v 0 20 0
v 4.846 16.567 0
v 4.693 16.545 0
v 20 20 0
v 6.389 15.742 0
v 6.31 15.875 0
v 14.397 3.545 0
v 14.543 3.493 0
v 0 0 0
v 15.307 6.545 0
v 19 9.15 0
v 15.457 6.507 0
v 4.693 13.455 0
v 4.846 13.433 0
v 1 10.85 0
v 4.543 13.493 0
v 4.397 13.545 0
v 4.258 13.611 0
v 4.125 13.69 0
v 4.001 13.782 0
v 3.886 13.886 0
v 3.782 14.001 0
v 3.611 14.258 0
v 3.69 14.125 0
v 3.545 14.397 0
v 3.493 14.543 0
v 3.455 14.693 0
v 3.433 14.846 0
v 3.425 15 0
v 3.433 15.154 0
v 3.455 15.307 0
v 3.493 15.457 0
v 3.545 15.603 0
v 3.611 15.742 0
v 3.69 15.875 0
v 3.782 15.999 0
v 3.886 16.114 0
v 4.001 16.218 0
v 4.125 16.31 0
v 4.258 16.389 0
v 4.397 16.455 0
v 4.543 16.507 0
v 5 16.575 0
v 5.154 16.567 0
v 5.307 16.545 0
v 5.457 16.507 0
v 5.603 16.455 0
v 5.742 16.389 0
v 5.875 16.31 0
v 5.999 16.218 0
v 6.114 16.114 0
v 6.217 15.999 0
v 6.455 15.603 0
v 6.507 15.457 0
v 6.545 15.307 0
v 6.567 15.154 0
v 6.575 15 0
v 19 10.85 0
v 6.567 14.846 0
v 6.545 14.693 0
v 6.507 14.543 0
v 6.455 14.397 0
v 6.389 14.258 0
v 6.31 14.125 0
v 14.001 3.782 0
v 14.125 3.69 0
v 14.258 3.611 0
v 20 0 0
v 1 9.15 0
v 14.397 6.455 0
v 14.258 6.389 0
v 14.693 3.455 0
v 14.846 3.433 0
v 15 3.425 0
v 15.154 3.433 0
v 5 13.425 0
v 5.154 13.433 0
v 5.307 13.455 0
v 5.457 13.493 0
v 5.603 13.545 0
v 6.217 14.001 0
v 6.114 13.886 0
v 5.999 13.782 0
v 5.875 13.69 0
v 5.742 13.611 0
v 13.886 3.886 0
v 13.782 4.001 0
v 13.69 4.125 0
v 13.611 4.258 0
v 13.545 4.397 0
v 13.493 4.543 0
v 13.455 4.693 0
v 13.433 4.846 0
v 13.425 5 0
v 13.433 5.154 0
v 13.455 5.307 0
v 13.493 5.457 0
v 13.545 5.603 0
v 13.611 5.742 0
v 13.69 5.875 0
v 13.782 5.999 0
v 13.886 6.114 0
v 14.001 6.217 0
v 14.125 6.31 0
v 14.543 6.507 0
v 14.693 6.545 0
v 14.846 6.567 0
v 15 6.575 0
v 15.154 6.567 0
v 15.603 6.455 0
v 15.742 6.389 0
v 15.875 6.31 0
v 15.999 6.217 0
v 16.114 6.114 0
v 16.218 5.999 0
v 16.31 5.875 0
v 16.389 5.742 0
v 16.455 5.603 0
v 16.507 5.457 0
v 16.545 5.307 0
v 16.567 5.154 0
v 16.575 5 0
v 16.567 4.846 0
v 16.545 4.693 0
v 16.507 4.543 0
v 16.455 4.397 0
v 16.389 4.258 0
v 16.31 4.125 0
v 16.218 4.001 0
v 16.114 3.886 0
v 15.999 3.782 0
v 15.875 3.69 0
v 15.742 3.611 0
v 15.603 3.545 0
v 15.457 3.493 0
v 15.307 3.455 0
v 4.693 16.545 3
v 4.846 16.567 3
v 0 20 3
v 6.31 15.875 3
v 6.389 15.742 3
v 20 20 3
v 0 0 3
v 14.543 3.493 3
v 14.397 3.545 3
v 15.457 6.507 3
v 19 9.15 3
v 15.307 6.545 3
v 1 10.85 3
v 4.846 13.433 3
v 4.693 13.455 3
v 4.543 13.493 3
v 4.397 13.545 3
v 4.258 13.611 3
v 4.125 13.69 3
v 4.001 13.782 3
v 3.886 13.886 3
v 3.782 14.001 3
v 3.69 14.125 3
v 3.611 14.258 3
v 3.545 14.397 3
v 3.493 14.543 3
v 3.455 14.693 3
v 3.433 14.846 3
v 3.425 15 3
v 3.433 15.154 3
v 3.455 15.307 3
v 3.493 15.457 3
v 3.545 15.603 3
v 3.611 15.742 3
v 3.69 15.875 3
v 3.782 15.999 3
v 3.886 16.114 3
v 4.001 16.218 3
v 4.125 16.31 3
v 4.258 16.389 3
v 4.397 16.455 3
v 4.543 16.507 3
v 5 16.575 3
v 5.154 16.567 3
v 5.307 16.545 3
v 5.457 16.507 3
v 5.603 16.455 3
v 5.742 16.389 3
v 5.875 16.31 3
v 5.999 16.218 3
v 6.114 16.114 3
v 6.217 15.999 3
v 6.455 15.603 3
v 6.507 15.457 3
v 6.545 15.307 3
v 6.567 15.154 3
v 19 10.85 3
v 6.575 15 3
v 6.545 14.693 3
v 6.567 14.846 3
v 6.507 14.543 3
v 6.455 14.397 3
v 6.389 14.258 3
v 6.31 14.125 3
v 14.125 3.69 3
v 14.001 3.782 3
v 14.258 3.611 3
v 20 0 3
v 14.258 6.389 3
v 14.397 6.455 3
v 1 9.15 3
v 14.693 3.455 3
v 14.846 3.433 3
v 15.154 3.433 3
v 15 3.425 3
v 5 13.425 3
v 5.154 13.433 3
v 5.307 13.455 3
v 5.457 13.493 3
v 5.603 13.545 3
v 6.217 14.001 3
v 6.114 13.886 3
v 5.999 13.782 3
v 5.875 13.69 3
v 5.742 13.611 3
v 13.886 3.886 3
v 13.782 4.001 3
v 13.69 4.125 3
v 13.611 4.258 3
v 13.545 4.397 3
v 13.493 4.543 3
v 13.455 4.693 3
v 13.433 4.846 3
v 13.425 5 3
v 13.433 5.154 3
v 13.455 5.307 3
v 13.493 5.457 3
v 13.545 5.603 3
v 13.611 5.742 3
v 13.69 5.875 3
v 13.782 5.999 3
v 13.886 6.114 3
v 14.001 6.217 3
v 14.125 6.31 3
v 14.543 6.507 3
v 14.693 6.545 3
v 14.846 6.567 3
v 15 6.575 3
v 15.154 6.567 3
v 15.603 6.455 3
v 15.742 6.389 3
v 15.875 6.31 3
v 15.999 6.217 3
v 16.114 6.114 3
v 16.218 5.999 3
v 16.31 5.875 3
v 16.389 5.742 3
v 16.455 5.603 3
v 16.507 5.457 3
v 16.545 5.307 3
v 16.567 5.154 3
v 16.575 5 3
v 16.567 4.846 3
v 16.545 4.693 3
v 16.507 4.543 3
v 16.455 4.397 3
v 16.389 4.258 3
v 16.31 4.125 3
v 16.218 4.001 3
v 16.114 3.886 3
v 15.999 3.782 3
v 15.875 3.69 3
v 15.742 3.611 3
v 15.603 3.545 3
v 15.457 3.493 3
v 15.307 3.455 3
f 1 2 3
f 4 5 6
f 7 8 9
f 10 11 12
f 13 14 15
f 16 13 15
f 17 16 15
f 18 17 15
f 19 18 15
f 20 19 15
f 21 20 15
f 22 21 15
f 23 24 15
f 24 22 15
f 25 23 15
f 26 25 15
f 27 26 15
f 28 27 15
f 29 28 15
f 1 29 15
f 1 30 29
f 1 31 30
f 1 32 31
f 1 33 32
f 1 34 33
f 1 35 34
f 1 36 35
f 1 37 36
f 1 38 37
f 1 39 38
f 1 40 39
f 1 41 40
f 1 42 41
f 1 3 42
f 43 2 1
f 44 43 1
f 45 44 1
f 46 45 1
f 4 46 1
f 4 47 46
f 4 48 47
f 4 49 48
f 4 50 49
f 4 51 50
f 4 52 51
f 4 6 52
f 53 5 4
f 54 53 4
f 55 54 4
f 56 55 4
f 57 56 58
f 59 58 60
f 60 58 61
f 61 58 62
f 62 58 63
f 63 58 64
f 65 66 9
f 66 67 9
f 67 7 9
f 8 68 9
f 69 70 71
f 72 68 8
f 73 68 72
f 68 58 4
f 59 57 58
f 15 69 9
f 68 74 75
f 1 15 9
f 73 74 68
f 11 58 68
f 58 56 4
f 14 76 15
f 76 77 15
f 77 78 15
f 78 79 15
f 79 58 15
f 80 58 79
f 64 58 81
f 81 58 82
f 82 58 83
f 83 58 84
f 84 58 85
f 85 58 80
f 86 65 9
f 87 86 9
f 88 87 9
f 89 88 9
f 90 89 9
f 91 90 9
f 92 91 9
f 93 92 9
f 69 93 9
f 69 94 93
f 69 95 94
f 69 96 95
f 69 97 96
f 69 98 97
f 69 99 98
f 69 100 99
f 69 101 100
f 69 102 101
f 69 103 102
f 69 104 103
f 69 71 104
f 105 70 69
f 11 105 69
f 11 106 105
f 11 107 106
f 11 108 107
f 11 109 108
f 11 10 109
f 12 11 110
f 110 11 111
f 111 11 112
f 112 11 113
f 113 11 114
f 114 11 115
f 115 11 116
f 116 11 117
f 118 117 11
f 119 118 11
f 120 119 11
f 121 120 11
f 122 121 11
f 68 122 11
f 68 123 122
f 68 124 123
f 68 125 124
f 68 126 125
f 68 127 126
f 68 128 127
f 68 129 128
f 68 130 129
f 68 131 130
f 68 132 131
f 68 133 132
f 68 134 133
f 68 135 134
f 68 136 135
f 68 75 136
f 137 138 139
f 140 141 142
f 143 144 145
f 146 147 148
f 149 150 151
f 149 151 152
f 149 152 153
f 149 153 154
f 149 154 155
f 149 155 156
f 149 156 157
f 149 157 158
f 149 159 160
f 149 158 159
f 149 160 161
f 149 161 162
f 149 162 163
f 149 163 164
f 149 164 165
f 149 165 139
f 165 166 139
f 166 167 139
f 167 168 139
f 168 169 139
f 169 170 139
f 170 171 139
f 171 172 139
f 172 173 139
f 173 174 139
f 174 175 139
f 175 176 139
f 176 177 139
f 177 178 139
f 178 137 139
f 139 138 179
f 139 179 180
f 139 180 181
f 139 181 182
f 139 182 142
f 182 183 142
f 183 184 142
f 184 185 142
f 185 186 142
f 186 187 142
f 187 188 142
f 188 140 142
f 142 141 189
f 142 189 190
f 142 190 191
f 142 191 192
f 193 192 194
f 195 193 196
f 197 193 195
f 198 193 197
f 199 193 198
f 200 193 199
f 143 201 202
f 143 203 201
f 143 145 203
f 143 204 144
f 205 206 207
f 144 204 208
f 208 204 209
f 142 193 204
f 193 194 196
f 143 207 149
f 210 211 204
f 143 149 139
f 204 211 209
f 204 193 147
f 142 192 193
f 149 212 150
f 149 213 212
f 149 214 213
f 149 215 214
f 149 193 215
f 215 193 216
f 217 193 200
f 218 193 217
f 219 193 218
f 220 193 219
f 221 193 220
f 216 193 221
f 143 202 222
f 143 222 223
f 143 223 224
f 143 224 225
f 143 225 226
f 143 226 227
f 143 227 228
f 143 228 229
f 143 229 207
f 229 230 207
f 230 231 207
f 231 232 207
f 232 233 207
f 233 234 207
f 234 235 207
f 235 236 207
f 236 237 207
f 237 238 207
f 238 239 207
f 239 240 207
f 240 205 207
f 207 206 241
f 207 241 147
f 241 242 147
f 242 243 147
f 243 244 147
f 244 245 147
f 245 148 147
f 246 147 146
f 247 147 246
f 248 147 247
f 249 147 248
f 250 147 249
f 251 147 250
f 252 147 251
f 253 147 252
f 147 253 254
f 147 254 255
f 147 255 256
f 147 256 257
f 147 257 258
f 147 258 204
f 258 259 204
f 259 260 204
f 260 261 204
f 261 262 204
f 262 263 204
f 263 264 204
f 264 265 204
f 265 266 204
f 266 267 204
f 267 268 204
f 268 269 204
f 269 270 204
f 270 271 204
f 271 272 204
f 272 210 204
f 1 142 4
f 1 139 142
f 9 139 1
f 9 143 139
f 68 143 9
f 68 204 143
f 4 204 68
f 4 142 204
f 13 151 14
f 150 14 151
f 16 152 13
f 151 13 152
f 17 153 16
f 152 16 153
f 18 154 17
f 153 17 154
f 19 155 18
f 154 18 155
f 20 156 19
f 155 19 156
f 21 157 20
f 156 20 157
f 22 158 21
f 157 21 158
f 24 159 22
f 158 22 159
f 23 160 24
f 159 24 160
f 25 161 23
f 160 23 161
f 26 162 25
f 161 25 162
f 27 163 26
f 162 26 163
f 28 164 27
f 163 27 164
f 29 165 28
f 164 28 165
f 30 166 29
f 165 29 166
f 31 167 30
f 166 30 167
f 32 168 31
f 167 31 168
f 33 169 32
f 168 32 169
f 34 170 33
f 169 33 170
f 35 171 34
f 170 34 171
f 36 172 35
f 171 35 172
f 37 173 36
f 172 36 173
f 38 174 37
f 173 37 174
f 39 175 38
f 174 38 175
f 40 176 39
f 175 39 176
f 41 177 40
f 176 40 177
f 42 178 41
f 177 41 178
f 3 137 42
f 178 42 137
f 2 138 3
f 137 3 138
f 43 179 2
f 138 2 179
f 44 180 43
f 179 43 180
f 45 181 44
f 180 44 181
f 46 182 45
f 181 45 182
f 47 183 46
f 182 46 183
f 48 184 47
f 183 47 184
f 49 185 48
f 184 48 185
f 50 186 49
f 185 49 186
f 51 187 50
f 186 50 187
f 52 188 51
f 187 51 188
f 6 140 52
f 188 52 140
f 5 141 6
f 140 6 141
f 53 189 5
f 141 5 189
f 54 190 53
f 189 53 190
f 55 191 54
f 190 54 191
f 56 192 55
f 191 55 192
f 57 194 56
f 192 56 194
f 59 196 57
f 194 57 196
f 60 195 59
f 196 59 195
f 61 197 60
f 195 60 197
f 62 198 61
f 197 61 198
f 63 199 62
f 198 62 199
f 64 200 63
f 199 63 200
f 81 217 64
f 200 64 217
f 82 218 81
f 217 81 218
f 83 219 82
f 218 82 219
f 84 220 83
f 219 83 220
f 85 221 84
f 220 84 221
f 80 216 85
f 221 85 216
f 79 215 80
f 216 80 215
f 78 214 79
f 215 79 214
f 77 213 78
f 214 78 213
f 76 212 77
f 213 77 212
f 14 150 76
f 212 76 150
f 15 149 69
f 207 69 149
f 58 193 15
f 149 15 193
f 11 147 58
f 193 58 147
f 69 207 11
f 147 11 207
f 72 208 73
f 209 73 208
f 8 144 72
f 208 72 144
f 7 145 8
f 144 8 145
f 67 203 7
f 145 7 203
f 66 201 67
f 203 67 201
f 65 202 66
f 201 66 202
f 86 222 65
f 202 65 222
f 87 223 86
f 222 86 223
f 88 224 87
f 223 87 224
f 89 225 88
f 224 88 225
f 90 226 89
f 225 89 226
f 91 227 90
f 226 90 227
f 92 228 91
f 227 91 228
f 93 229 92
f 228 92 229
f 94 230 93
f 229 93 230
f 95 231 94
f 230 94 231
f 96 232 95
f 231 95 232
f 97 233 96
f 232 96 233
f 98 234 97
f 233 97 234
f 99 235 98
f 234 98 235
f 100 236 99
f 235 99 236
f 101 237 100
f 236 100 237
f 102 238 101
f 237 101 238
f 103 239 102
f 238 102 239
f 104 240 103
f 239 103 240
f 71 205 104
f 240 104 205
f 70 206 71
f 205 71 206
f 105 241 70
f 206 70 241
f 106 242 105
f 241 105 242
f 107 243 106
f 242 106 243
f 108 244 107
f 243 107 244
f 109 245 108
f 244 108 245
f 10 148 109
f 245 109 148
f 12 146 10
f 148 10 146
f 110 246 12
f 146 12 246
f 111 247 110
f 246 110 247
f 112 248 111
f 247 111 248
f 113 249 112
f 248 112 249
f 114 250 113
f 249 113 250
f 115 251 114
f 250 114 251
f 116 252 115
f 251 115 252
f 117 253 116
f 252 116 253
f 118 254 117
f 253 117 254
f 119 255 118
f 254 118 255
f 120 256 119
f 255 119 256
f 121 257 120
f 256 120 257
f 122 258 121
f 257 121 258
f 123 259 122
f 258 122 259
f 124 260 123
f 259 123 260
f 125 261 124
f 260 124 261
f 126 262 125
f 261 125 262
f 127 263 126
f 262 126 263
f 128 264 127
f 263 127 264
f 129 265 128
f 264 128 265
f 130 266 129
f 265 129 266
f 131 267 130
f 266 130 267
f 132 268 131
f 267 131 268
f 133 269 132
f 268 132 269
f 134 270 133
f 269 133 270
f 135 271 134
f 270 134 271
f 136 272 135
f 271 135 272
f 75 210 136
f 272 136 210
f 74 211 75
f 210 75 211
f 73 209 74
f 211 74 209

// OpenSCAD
// file: miniature-bases/common/params.scad
$fn = $preview ? 32 : 64;

// Value of kerf to apply when lasercutting things.
// Value is based on the experience using Epilog Mini machine in
// Google WFC Makerspace.
kerf = 0.2;

// Spacing between insert and miniatures bases to allow to slick fit.
insert_spacing = 0.2;
magnet_spacing = 0.15;

// Default values
//
// Default diameter of magnets used for my miniatures.
default_magnet_diameter = 3;
base_height = 3;
pin_height = 2.5;
// file: miniature-bases/common/kow.scad
include <params.scad>;

module MagnetSockets(unit_type, only_diagonal = false) {
  baseSize = BaseSize(unit_type);

  translate([ 5, baseSize[1] - 5 ]) children(0);
  translate([ baseSize[0] - 5, 5 ]) children(0);

  if (!only_diagonal) {
    translate([ 5, 5 ]) children(0);
    translate([ baseSize[0] - 5, baseSize[1] - 5 ]) children(0);
  }
}

module Magnet(d = default_magnet_diameter, offset = 0) {
  circle(d = d + offset);
}

module BM4Sockets(unit_type, spacing, only_diagonal = false) {
  MagnetSockets(unit_type = unit_type, only_diagonal = only_diagonal) {
    Magnet(offset = spacing);
  }
}

module Base(unit_type, extraMargin = [ 0, 0 ]) {
  square(BaseSize(unit_type) + extraMargin);
}

function BaseSize(unit_type) = unit_type == "infantry"         ? [ 20, 20 ]
                               : unit_type == "heavy_infantry" ? [ 25, 25 ]
                               : unit_type == "cavalry"        ? [ 25, 50 ]
                               : unit_type == "lrginf"         ? [ 40, 40 ]
                               : unit_type == "lrgcav"         ? [ 50, 50 ]
                               : unit_type == "titan"          ? [ 75, 75 ]
                                                               : [ 10, 10 ];

function BaseNum(unit_type, unitSize) =
    unit_type == "infantry"  ? unitSize == "legion"     ? [ 10, 6 ]
                               : unitSize == "horde"    ? [ 10, 4 ]
                               : unitSize == "regiment" ? [ 5, 4 ]
                                                        : [ 5, 2 ]
    : unit_type == "cavalry" ? unitSize == "regiment" ? [ 5, 2 ] : [ 5, 1 ]
    : unit_type == "lrginf"  ? unitSize == "regiment" ? [ 3, 1 ] : [ 3, 2 ]
    : unit_type == "lrgcav"  ? unitSize == "regiment" ? [ 3, 1 ]
                               : unitSize == "horde"  ? [ 3, 2 ]
                                                      : [ 1, 1 ]
                             : [ 1, 1 ];
// file: miniature-bases/libbase.scad
include <common/kow.scad>;

module MagnetHole() { Magnet(offset = magnet_spacing); } 

module BaseBM4(unit_type, only_diagonal = false) {
  linear_extrude(height = base_height) {
    difference() {
      Base(unit_type = unit_type);
      union() {
        MagnetSockets(unit_type = unit_type, only_diagonal = only_diagonal) {
          MagnetHole();
        }
        children();
      }
    }
  }
}

SLOTTA_ANGLE = 0;
SLOTTA_SLOT_MARGIN = 1.5; 
SLOT_WIDTH = 1.7;  


module SlottaBM4(a = SLOTTA_ANGLE, unit_type = "infantry", slot_margin = SLOTTA_SLOT_MARGIN) {
  base_size = BaseSize(unit_type);

  // slot_length = 18; for a = 0 (as in GW bases)
  // total_slot_margin = 4; for a = 45 (as in GW bases)

  slot_length =
      (base_size[0] - 2 * slot_margin - cos(90 - a) * SLOT_WIDTH) / cos(a);

  BaseBM4(unit_type = unit_type, only_diagonal = true) {
    translate(0.5 * base_size) rotate(a)
        square([ slot_length, SLOT_WIDTH ], center = true);
  };
}

module CavalrySlot() {
  slotWidth = 2.5;
  slotLength = 35;
  slotSpacing = 2.8;
  baseSize = BaseSize("cavalry");

  translate([
    (baseSize[0] - 2 * slotWidth - slotSpacing) / 2,
    (baseSize[1] - slotLength) / 2
  ]) {
    square([ slotWidth, slotLength ]);
    translate([ slotSpacing + slotWidth, 0 ]) square([ slotWidth, slotLength ]);
  }
}
// main file
use <miniature-bases/libbase.scad>;

$fn = $preview ? 32 : 64;

SlottaBM4(0, slot_margin=1);
